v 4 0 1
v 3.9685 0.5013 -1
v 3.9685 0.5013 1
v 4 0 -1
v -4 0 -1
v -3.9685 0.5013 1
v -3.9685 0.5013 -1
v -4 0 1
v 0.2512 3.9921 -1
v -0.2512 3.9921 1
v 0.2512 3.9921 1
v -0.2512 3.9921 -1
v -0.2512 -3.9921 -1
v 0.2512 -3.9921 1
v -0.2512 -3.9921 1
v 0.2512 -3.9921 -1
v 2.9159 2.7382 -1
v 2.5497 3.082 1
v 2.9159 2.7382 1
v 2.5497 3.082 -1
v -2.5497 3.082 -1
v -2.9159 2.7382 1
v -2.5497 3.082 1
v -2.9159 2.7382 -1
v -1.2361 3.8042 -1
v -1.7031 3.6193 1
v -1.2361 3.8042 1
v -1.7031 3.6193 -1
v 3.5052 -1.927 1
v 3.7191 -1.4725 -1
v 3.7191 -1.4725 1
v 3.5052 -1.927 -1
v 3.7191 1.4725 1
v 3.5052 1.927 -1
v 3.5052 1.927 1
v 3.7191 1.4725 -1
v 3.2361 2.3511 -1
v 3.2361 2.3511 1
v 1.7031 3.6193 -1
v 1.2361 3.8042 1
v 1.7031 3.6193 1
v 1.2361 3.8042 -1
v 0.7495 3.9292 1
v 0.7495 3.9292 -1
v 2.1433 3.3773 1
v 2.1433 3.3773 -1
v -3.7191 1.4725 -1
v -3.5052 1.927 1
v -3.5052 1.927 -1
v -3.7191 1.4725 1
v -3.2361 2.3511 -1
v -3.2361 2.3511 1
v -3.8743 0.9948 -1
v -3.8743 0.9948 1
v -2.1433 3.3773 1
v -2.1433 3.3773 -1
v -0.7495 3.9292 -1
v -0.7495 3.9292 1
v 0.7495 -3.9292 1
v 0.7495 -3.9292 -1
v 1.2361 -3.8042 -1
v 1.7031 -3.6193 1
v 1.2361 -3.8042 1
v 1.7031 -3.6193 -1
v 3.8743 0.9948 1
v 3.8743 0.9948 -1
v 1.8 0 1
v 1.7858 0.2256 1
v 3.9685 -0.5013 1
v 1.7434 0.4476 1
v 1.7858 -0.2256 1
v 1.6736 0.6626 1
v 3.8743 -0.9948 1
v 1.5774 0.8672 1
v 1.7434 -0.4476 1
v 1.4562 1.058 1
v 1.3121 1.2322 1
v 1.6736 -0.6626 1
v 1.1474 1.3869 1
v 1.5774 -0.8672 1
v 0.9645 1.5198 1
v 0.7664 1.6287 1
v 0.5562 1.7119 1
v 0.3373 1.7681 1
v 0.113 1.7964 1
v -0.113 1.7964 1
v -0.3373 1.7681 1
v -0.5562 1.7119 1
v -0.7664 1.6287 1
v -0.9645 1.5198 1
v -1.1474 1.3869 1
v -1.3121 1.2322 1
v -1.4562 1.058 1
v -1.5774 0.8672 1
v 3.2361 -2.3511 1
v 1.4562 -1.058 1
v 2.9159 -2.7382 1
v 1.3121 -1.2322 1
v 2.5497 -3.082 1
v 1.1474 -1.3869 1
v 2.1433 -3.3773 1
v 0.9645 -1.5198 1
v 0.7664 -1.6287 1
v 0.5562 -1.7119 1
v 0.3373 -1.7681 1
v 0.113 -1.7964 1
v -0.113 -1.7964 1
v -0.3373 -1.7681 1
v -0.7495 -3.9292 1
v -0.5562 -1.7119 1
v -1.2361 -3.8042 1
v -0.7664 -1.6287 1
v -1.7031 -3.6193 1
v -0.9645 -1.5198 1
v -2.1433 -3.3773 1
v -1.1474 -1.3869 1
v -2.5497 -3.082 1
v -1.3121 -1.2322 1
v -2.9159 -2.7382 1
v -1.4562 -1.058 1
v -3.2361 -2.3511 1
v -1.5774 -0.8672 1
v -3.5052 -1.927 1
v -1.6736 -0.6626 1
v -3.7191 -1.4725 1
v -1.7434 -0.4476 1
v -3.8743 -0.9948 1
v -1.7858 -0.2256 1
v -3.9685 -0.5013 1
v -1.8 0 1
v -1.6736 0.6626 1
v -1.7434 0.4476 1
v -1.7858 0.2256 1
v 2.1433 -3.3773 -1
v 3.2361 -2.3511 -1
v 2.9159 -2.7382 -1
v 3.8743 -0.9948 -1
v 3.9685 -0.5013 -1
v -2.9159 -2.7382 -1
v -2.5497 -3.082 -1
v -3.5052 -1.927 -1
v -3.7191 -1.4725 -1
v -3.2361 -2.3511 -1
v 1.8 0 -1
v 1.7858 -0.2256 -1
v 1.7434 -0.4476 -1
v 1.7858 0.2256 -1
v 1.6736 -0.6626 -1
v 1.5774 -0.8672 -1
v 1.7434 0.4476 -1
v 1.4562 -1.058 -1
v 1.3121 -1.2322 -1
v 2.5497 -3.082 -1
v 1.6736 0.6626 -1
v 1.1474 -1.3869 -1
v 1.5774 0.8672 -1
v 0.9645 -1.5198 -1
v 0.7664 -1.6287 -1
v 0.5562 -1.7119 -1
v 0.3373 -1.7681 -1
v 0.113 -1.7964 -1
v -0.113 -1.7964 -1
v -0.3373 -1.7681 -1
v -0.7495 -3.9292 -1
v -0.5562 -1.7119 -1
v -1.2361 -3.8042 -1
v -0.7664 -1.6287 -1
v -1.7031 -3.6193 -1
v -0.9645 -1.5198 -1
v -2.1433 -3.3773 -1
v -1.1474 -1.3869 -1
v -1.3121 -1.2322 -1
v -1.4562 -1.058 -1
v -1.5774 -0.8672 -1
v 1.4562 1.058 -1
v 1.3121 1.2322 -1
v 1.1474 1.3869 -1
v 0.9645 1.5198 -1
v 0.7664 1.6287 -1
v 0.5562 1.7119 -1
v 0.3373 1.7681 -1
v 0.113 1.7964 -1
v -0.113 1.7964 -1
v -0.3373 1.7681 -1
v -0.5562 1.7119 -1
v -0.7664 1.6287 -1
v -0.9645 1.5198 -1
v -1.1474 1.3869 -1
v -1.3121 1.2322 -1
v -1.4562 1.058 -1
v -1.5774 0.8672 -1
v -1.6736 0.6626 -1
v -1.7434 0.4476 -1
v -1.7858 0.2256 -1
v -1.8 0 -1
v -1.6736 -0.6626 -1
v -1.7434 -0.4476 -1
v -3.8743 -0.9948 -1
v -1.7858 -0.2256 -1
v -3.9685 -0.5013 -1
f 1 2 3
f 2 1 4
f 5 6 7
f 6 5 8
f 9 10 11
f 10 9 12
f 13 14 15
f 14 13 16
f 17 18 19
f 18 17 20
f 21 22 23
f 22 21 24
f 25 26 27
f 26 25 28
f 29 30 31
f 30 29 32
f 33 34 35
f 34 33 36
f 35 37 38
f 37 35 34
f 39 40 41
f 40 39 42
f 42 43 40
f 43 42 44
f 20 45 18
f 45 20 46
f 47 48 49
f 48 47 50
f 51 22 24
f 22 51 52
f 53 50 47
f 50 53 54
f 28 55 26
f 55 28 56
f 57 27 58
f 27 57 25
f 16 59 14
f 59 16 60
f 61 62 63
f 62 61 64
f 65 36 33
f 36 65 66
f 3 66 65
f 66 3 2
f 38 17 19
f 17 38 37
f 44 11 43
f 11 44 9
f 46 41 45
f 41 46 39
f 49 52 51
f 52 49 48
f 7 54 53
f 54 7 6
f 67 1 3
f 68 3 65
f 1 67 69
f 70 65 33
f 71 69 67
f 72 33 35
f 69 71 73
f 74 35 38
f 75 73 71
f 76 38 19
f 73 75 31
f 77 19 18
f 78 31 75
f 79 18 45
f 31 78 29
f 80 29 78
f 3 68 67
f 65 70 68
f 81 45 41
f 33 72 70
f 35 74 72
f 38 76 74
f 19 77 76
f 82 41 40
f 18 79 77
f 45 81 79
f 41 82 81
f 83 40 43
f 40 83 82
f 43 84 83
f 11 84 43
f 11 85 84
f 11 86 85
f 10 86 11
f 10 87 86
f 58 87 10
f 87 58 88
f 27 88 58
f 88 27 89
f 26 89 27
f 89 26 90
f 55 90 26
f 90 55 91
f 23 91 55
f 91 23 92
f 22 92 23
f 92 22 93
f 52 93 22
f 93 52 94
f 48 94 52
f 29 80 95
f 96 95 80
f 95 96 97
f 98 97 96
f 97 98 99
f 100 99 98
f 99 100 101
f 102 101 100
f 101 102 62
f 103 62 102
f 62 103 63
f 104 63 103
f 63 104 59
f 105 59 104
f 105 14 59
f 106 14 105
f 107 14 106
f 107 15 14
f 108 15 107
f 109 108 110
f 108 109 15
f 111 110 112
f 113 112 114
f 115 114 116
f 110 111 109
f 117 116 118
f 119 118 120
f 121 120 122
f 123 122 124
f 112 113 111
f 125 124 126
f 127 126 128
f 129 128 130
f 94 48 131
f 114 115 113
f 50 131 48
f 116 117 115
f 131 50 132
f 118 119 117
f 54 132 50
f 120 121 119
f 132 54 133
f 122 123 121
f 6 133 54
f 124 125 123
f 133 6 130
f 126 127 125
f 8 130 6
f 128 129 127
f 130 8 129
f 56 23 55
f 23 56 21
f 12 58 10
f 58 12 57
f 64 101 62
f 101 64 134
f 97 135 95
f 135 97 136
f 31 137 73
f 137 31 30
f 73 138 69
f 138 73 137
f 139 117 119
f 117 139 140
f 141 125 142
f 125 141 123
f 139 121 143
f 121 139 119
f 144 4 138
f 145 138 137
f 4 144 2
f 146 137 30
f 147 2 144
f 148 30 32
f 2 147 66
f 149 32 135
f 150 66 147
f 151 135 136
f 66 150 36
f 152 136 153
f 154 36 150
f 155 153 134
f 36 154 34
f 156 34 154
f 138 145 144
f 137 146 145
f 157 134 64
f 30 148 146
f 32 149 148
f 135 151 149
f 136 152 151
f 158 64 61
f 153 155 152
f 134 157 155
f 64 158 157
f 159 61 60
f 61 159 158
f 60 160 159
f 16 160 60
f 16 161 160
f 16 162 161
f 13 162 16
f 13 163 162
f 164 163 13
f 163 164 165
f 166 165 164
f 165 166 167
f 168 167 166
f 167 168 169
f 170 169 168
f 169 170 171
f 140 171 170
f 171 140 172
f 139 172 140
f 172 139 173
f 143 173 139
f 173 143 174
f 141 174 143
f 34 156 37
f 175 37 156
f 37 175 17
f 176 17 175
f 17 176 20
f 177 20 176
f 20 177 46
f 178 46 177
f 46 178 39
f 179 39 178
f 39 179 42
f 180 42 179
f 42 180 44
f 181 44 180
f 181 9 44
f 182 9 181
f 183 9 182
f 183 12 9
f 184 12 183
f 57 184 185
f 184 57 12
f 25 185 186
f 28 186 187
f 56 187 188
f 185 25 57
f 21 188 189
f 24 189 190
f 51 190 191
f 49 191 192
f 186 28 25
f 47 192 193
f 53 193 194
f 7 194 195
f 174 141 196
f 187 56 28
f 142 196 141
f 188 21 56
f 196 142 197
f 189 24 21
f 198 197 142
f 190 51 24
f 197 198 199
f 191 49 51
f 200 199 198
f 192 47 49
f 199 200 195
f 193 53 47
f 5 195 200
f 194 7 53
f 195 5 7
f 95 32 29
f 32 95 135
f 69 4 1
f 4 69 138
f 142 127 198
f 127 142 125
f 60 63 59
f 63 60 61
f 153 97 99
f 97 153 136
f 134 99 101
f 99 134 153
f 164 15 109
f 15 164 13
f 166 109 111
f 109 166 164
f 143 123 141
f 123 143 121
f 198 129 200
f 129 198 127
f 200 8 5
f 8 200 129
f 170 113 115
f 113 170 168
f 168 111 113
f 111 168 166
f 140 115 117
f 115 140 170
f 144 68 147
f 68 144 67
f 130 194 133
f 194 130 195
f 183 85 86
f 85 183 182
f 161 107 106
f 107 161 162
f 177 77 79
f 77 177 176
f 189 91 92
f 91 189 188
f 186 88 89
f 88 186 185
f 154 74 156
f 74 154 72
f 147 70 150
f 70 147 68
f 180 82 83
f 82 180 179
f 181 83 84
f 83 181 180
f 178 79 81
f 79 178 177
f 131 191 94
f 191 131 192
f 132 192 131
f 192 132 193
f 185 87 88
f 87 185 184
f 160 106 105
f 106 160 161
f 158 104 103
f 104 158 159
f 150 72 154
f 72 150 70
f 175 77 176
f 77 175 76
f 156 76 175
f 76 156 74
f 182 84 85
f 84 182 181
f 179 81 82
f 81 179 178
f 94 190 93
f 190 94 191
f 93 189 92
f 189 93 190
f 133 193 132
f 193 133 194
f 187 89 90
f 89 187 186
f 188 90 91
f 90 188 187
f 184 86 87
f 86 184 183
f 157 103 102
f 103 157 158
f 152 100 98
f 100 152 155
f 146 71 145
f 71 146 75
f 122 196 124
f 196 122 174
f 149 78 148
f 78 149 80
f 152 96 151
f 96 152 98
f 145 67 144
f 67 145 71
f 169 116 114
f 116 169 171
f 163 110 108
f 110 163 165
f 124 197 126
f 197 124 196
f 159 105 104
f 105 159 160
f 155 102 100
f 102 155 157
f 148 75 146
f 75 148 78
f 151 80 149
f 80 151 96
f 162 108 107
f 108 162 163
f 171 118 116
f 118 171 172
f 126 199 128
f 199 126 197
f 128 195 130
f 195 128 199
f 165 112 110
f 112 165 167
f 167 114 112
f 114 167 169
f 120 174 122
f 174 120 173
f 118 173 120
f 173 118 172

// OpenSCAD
$fn = 50;


difference() {
	union() {
		translate(v = [0, 0, -1.0000000000]) {
			cylinder(h = 2, r = 4.0000000000);
		}
	}
	union() {
		translate(v = [0, 0, -100.0000000000]) {
			cylinder(h = 200, r = 1.8000000000);
		}
	}
}
